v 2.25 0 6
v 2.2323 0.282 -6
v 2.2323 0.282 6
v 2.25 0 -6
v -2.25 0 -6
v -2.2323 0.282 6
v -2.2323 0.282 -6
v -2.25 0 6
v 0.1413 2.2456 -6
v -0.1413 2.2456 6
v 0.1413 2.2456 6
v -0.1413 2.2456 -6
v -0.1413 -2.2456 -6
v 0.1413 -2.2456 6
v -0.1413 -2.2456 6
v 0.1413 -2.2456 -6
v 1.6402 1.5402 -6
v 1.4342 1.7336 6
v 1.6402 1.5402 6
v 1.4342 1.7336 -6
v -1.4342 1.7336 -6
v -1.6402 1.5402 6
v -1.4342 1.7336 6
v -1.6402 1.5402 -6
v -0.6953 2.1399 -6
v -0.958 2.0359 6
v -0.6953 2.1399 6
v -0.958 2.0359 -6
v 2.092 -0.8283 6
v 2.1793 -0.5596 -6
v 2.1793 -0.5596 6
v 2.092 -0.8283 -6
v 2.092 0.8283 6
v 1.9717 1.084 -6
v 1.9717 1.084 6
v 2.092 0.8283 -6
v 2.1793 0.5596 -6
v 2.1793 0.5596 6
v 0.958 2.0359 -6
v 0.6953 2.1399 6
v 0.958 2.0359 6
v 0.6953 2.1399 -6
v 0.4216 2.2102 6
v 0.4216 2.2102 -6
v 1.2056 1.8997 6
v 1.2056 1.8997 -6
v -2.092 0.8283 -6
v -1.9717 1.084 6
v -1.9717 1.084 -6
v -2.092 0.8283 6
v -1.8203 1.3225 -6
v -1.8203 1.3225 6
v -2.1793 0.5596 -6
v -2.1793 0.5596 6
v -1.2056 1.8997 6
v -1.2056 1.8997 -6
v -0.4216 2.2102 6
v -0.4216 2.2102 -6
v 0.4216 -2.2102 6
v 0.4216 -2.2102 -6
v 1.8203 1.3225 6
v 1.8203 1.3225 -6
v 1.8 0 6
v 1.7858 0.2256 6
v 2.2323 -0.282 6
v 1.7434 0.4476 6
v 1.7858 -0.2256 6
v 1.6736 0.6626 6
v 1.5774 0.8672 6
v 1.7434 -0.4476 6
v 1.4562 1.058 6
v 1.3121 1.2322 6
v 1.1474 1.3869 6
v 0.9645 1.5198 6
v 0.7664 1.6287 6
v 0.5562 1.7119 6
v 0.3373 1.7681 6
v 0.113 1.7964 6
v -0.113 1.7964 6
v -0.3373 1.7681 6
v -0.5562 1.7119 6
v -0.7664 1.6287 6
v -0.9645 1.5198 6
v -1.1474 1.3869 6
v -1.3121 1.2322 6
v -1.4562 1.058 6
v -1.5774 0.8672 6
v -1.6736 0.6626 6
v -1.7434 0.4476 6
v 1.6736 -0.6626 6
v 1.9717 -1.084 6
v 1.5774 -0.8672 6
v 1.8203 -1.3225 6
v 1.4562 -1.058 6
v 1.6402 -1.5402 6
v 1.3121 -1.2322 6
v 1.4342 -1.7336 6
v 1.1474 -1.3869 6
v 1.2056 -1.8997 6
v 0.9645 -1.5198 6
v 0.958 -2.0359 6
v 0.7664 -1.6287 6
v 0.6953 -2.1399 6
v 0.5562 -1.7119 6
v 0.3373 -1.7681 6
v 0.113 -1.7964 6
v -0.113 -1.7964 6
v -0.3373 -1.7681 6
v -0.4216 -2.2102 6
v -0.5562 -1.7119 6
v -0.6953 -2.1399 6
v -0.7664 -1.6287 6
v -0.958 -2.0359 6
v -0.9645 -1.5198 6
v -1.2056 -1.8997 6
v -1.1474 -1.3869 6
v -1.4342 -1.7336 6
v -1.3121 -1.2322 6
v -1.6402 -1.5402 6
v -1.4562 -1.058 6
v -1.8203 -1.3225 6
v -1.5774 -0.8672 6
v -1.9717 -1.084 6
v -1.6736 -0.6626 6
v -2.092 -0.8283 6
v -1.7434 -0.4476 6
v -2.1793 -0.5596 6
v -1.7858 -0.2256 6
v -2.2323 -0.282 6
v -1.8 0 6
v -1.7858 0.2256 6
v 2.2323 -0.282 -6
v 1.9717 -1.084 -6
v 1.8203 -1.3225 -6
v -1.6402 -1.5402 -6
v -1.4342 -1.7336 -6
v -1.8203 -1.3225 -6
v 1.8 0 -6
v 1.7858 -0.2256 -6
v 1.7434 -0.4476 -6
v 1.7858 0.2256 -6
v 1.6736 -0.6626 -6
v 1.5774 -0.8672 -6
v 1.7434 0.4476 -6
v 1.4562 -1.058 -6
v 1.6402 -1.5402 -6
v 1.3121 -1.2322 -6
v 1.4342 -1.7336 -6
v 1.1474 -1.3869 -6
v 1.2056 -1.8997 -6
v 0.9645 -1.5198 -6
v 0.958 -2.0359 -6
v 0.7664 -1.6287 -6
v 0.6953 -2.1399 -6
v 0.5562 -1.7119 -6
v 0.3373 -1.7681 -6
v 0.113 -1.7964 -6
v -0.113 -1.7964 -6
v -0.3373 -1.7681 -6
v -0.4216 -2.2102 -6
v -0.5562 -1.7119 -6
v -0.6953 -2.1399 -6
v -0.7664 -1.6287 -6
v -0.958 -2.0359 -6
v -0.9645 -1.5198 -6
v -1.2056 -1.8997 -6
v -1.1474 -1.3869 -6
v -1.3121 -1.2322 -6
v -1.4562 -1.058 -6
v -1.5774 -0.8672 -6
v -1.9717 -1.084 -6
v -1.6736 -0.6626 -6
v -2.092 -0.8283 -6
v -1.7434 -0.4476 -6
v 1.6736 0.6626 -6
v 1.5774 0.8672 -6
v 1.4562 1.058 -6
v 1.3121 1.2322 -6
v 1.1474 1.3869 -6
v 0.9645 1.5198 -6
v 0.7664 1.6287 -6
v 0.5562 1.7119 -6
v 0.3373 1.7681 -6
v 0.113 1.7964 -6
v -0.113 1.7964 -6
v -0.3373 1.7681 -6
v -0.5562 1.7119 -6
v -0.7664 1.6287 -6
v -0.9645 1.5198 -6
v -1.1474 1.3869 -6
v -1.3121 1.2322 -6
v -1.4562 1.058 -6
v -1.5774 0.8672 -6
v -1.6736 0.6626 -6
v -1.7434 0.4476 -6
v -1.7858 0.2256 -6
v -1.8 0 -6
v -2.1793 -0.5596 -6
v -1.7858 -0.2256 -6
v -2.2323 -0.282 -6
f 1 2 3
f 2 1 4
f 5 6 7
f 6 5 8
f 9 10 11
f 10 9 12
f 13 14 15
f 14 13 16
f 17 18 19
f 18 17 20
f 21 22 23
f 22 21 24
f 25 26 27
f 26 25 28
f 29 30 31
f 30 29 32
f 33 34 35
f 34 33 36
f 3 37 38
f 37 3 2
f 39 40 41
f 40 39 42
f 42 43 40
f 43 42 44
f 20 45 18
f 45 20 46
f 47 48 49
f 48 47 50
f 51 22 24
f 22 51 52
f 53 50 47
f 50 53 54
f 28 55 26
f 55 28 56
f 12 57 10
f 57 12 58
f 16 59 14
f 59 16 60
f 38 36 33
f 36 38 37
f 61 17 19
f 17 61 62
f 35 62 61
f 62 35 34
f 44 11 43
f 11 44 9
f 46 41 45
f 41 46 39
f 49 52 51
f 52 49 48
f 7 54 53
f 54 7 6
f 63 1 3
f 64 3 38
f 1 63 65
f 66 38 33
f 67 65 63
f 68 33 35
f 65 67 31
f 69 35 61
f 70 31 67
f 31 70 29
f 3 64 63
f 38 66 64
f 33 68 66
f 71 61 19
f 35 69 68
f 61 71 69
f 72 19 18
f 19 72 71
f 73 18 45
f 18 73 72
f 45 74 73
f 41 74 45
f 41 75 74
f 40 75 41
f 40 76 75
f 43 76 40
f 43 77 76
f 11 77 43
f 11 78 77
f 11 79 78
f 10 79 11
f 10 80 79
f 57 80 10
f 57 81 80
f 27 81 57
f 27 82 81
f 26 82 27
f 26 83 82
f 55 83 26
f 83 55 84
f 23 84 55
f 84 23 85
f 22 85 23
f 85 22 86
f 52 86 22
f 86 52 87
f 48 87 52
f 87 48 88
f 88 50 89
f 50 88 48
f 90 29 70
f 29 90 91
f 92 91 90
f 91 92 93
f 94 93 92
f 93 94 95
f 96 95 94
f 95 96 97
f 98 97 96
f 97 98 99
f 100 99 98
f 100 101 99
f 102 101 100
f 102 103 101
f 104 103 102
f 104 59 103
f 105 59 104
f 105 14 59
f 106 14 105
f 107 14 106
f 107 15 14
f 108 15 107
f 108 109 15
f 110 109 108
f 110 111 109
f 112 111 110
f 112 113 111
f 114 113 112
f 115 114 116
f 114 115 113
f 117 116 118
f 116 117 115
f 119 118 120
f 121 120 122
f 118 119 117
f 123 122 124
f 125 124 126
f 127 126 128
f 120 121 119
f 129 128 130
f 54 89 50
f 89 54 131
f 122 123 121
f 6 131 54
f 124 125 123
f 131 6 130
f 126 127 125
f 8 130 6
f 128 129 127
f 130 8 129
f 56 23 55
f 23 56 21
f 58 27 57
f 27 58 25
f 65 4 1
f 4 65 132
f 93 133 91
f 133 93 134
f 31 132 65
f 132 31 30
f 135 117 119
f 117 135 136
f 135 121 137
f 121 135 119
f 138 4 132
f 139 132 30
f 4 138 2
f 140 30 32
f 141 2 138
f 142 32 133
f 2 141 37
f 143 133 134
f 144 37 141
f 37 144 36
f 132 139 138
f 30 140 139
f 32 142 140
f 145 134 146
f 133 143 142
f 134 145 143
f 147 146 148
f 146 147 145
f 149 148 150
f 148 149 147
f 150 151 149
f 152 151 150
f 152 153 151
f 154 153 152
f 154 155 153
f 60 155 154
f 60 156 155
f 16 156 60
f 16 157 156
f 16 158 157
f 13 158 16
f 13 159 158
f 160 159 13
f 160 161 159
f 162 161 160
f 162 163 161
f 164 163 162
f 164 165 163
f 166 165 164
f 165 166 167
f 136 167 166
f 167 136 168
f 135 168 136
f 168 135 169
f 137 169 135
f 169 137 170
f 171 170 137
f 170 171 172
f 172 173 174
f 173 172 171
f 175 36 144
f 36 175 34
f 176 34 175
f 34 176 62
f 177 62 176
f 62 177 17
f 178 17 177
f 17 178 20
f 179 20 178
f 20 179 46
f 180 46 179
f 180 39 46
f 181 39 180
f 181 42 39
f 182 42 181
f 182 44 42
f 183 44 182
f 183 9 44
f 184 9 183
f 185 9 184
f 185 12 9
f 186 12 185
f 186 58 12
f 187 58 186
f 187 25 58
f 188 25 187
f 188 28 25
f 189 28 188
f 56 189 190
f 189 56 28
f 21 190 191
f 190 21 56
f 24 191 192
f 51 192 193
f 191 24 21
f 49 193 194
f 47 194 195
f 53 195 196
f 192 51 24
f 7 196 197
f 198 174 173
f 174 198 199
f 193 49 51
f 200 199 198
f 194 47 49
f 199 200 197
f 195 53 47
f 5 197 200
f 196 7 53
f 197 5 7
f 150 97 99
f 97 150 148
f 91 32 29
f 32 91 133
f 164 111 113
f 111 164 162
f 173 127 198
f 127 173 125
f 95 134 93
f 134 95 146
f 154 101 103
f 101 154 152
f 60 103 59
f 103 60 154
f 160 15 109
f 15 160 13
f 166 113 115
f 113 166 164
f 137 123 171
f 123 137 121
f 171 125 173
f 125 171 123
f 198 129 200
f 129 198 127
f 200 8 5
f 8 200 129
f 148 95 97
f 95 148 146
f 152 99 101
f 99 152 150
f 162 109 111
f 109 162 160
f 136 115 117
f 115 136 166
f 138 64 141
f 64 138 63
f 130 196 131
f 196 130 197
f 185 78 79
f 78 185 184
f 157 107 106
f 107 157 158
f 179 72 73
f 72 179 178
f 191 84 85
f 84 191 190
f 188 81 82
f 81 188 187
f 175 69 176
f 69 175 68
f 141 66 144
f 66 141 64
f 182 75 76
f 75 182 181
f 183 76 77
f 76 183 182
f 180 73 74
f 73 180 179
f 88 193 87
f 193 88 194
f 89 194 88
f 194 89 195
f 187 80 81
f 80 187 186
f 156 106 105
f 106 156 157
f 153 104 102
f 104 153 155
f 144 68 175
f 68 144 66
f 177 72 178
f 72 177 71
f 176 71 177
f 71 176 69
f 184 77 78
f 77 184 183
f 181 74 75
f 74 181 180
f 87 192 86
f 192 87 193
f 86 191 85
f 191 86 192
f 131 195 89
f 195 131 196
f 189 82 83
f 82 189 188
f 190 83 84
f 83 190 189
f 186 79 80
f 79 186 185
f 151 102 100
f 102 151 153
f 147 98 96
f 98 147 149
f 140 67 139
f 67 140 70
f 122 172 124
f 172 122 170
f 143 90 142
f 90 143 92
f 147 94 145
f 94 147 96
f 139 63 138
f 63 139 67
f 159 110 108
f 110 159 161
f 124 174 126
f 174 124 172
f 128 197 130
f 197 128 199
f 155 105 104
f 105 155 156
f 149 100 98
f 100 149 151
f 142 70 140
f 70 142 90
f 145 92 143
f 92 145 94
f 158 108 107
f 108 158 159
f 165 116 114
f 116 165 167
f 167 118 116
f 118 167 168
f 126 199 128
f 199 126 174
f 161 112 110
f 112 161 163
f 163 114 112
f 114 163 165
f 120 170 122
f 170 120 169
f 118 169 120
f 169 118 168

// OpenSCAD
$fn = 50;


difference() {
	union() {
		translate(v = [0, 0, -6.0000000000]) {
			cylinder(h = 12, r = 2.2500000000);
		}
	}
	union() {
		translate(v = [0, 0, -100.0000000000]) {
			cylinder(h = 200, r = 1.8000000000);
		}
	}
}
